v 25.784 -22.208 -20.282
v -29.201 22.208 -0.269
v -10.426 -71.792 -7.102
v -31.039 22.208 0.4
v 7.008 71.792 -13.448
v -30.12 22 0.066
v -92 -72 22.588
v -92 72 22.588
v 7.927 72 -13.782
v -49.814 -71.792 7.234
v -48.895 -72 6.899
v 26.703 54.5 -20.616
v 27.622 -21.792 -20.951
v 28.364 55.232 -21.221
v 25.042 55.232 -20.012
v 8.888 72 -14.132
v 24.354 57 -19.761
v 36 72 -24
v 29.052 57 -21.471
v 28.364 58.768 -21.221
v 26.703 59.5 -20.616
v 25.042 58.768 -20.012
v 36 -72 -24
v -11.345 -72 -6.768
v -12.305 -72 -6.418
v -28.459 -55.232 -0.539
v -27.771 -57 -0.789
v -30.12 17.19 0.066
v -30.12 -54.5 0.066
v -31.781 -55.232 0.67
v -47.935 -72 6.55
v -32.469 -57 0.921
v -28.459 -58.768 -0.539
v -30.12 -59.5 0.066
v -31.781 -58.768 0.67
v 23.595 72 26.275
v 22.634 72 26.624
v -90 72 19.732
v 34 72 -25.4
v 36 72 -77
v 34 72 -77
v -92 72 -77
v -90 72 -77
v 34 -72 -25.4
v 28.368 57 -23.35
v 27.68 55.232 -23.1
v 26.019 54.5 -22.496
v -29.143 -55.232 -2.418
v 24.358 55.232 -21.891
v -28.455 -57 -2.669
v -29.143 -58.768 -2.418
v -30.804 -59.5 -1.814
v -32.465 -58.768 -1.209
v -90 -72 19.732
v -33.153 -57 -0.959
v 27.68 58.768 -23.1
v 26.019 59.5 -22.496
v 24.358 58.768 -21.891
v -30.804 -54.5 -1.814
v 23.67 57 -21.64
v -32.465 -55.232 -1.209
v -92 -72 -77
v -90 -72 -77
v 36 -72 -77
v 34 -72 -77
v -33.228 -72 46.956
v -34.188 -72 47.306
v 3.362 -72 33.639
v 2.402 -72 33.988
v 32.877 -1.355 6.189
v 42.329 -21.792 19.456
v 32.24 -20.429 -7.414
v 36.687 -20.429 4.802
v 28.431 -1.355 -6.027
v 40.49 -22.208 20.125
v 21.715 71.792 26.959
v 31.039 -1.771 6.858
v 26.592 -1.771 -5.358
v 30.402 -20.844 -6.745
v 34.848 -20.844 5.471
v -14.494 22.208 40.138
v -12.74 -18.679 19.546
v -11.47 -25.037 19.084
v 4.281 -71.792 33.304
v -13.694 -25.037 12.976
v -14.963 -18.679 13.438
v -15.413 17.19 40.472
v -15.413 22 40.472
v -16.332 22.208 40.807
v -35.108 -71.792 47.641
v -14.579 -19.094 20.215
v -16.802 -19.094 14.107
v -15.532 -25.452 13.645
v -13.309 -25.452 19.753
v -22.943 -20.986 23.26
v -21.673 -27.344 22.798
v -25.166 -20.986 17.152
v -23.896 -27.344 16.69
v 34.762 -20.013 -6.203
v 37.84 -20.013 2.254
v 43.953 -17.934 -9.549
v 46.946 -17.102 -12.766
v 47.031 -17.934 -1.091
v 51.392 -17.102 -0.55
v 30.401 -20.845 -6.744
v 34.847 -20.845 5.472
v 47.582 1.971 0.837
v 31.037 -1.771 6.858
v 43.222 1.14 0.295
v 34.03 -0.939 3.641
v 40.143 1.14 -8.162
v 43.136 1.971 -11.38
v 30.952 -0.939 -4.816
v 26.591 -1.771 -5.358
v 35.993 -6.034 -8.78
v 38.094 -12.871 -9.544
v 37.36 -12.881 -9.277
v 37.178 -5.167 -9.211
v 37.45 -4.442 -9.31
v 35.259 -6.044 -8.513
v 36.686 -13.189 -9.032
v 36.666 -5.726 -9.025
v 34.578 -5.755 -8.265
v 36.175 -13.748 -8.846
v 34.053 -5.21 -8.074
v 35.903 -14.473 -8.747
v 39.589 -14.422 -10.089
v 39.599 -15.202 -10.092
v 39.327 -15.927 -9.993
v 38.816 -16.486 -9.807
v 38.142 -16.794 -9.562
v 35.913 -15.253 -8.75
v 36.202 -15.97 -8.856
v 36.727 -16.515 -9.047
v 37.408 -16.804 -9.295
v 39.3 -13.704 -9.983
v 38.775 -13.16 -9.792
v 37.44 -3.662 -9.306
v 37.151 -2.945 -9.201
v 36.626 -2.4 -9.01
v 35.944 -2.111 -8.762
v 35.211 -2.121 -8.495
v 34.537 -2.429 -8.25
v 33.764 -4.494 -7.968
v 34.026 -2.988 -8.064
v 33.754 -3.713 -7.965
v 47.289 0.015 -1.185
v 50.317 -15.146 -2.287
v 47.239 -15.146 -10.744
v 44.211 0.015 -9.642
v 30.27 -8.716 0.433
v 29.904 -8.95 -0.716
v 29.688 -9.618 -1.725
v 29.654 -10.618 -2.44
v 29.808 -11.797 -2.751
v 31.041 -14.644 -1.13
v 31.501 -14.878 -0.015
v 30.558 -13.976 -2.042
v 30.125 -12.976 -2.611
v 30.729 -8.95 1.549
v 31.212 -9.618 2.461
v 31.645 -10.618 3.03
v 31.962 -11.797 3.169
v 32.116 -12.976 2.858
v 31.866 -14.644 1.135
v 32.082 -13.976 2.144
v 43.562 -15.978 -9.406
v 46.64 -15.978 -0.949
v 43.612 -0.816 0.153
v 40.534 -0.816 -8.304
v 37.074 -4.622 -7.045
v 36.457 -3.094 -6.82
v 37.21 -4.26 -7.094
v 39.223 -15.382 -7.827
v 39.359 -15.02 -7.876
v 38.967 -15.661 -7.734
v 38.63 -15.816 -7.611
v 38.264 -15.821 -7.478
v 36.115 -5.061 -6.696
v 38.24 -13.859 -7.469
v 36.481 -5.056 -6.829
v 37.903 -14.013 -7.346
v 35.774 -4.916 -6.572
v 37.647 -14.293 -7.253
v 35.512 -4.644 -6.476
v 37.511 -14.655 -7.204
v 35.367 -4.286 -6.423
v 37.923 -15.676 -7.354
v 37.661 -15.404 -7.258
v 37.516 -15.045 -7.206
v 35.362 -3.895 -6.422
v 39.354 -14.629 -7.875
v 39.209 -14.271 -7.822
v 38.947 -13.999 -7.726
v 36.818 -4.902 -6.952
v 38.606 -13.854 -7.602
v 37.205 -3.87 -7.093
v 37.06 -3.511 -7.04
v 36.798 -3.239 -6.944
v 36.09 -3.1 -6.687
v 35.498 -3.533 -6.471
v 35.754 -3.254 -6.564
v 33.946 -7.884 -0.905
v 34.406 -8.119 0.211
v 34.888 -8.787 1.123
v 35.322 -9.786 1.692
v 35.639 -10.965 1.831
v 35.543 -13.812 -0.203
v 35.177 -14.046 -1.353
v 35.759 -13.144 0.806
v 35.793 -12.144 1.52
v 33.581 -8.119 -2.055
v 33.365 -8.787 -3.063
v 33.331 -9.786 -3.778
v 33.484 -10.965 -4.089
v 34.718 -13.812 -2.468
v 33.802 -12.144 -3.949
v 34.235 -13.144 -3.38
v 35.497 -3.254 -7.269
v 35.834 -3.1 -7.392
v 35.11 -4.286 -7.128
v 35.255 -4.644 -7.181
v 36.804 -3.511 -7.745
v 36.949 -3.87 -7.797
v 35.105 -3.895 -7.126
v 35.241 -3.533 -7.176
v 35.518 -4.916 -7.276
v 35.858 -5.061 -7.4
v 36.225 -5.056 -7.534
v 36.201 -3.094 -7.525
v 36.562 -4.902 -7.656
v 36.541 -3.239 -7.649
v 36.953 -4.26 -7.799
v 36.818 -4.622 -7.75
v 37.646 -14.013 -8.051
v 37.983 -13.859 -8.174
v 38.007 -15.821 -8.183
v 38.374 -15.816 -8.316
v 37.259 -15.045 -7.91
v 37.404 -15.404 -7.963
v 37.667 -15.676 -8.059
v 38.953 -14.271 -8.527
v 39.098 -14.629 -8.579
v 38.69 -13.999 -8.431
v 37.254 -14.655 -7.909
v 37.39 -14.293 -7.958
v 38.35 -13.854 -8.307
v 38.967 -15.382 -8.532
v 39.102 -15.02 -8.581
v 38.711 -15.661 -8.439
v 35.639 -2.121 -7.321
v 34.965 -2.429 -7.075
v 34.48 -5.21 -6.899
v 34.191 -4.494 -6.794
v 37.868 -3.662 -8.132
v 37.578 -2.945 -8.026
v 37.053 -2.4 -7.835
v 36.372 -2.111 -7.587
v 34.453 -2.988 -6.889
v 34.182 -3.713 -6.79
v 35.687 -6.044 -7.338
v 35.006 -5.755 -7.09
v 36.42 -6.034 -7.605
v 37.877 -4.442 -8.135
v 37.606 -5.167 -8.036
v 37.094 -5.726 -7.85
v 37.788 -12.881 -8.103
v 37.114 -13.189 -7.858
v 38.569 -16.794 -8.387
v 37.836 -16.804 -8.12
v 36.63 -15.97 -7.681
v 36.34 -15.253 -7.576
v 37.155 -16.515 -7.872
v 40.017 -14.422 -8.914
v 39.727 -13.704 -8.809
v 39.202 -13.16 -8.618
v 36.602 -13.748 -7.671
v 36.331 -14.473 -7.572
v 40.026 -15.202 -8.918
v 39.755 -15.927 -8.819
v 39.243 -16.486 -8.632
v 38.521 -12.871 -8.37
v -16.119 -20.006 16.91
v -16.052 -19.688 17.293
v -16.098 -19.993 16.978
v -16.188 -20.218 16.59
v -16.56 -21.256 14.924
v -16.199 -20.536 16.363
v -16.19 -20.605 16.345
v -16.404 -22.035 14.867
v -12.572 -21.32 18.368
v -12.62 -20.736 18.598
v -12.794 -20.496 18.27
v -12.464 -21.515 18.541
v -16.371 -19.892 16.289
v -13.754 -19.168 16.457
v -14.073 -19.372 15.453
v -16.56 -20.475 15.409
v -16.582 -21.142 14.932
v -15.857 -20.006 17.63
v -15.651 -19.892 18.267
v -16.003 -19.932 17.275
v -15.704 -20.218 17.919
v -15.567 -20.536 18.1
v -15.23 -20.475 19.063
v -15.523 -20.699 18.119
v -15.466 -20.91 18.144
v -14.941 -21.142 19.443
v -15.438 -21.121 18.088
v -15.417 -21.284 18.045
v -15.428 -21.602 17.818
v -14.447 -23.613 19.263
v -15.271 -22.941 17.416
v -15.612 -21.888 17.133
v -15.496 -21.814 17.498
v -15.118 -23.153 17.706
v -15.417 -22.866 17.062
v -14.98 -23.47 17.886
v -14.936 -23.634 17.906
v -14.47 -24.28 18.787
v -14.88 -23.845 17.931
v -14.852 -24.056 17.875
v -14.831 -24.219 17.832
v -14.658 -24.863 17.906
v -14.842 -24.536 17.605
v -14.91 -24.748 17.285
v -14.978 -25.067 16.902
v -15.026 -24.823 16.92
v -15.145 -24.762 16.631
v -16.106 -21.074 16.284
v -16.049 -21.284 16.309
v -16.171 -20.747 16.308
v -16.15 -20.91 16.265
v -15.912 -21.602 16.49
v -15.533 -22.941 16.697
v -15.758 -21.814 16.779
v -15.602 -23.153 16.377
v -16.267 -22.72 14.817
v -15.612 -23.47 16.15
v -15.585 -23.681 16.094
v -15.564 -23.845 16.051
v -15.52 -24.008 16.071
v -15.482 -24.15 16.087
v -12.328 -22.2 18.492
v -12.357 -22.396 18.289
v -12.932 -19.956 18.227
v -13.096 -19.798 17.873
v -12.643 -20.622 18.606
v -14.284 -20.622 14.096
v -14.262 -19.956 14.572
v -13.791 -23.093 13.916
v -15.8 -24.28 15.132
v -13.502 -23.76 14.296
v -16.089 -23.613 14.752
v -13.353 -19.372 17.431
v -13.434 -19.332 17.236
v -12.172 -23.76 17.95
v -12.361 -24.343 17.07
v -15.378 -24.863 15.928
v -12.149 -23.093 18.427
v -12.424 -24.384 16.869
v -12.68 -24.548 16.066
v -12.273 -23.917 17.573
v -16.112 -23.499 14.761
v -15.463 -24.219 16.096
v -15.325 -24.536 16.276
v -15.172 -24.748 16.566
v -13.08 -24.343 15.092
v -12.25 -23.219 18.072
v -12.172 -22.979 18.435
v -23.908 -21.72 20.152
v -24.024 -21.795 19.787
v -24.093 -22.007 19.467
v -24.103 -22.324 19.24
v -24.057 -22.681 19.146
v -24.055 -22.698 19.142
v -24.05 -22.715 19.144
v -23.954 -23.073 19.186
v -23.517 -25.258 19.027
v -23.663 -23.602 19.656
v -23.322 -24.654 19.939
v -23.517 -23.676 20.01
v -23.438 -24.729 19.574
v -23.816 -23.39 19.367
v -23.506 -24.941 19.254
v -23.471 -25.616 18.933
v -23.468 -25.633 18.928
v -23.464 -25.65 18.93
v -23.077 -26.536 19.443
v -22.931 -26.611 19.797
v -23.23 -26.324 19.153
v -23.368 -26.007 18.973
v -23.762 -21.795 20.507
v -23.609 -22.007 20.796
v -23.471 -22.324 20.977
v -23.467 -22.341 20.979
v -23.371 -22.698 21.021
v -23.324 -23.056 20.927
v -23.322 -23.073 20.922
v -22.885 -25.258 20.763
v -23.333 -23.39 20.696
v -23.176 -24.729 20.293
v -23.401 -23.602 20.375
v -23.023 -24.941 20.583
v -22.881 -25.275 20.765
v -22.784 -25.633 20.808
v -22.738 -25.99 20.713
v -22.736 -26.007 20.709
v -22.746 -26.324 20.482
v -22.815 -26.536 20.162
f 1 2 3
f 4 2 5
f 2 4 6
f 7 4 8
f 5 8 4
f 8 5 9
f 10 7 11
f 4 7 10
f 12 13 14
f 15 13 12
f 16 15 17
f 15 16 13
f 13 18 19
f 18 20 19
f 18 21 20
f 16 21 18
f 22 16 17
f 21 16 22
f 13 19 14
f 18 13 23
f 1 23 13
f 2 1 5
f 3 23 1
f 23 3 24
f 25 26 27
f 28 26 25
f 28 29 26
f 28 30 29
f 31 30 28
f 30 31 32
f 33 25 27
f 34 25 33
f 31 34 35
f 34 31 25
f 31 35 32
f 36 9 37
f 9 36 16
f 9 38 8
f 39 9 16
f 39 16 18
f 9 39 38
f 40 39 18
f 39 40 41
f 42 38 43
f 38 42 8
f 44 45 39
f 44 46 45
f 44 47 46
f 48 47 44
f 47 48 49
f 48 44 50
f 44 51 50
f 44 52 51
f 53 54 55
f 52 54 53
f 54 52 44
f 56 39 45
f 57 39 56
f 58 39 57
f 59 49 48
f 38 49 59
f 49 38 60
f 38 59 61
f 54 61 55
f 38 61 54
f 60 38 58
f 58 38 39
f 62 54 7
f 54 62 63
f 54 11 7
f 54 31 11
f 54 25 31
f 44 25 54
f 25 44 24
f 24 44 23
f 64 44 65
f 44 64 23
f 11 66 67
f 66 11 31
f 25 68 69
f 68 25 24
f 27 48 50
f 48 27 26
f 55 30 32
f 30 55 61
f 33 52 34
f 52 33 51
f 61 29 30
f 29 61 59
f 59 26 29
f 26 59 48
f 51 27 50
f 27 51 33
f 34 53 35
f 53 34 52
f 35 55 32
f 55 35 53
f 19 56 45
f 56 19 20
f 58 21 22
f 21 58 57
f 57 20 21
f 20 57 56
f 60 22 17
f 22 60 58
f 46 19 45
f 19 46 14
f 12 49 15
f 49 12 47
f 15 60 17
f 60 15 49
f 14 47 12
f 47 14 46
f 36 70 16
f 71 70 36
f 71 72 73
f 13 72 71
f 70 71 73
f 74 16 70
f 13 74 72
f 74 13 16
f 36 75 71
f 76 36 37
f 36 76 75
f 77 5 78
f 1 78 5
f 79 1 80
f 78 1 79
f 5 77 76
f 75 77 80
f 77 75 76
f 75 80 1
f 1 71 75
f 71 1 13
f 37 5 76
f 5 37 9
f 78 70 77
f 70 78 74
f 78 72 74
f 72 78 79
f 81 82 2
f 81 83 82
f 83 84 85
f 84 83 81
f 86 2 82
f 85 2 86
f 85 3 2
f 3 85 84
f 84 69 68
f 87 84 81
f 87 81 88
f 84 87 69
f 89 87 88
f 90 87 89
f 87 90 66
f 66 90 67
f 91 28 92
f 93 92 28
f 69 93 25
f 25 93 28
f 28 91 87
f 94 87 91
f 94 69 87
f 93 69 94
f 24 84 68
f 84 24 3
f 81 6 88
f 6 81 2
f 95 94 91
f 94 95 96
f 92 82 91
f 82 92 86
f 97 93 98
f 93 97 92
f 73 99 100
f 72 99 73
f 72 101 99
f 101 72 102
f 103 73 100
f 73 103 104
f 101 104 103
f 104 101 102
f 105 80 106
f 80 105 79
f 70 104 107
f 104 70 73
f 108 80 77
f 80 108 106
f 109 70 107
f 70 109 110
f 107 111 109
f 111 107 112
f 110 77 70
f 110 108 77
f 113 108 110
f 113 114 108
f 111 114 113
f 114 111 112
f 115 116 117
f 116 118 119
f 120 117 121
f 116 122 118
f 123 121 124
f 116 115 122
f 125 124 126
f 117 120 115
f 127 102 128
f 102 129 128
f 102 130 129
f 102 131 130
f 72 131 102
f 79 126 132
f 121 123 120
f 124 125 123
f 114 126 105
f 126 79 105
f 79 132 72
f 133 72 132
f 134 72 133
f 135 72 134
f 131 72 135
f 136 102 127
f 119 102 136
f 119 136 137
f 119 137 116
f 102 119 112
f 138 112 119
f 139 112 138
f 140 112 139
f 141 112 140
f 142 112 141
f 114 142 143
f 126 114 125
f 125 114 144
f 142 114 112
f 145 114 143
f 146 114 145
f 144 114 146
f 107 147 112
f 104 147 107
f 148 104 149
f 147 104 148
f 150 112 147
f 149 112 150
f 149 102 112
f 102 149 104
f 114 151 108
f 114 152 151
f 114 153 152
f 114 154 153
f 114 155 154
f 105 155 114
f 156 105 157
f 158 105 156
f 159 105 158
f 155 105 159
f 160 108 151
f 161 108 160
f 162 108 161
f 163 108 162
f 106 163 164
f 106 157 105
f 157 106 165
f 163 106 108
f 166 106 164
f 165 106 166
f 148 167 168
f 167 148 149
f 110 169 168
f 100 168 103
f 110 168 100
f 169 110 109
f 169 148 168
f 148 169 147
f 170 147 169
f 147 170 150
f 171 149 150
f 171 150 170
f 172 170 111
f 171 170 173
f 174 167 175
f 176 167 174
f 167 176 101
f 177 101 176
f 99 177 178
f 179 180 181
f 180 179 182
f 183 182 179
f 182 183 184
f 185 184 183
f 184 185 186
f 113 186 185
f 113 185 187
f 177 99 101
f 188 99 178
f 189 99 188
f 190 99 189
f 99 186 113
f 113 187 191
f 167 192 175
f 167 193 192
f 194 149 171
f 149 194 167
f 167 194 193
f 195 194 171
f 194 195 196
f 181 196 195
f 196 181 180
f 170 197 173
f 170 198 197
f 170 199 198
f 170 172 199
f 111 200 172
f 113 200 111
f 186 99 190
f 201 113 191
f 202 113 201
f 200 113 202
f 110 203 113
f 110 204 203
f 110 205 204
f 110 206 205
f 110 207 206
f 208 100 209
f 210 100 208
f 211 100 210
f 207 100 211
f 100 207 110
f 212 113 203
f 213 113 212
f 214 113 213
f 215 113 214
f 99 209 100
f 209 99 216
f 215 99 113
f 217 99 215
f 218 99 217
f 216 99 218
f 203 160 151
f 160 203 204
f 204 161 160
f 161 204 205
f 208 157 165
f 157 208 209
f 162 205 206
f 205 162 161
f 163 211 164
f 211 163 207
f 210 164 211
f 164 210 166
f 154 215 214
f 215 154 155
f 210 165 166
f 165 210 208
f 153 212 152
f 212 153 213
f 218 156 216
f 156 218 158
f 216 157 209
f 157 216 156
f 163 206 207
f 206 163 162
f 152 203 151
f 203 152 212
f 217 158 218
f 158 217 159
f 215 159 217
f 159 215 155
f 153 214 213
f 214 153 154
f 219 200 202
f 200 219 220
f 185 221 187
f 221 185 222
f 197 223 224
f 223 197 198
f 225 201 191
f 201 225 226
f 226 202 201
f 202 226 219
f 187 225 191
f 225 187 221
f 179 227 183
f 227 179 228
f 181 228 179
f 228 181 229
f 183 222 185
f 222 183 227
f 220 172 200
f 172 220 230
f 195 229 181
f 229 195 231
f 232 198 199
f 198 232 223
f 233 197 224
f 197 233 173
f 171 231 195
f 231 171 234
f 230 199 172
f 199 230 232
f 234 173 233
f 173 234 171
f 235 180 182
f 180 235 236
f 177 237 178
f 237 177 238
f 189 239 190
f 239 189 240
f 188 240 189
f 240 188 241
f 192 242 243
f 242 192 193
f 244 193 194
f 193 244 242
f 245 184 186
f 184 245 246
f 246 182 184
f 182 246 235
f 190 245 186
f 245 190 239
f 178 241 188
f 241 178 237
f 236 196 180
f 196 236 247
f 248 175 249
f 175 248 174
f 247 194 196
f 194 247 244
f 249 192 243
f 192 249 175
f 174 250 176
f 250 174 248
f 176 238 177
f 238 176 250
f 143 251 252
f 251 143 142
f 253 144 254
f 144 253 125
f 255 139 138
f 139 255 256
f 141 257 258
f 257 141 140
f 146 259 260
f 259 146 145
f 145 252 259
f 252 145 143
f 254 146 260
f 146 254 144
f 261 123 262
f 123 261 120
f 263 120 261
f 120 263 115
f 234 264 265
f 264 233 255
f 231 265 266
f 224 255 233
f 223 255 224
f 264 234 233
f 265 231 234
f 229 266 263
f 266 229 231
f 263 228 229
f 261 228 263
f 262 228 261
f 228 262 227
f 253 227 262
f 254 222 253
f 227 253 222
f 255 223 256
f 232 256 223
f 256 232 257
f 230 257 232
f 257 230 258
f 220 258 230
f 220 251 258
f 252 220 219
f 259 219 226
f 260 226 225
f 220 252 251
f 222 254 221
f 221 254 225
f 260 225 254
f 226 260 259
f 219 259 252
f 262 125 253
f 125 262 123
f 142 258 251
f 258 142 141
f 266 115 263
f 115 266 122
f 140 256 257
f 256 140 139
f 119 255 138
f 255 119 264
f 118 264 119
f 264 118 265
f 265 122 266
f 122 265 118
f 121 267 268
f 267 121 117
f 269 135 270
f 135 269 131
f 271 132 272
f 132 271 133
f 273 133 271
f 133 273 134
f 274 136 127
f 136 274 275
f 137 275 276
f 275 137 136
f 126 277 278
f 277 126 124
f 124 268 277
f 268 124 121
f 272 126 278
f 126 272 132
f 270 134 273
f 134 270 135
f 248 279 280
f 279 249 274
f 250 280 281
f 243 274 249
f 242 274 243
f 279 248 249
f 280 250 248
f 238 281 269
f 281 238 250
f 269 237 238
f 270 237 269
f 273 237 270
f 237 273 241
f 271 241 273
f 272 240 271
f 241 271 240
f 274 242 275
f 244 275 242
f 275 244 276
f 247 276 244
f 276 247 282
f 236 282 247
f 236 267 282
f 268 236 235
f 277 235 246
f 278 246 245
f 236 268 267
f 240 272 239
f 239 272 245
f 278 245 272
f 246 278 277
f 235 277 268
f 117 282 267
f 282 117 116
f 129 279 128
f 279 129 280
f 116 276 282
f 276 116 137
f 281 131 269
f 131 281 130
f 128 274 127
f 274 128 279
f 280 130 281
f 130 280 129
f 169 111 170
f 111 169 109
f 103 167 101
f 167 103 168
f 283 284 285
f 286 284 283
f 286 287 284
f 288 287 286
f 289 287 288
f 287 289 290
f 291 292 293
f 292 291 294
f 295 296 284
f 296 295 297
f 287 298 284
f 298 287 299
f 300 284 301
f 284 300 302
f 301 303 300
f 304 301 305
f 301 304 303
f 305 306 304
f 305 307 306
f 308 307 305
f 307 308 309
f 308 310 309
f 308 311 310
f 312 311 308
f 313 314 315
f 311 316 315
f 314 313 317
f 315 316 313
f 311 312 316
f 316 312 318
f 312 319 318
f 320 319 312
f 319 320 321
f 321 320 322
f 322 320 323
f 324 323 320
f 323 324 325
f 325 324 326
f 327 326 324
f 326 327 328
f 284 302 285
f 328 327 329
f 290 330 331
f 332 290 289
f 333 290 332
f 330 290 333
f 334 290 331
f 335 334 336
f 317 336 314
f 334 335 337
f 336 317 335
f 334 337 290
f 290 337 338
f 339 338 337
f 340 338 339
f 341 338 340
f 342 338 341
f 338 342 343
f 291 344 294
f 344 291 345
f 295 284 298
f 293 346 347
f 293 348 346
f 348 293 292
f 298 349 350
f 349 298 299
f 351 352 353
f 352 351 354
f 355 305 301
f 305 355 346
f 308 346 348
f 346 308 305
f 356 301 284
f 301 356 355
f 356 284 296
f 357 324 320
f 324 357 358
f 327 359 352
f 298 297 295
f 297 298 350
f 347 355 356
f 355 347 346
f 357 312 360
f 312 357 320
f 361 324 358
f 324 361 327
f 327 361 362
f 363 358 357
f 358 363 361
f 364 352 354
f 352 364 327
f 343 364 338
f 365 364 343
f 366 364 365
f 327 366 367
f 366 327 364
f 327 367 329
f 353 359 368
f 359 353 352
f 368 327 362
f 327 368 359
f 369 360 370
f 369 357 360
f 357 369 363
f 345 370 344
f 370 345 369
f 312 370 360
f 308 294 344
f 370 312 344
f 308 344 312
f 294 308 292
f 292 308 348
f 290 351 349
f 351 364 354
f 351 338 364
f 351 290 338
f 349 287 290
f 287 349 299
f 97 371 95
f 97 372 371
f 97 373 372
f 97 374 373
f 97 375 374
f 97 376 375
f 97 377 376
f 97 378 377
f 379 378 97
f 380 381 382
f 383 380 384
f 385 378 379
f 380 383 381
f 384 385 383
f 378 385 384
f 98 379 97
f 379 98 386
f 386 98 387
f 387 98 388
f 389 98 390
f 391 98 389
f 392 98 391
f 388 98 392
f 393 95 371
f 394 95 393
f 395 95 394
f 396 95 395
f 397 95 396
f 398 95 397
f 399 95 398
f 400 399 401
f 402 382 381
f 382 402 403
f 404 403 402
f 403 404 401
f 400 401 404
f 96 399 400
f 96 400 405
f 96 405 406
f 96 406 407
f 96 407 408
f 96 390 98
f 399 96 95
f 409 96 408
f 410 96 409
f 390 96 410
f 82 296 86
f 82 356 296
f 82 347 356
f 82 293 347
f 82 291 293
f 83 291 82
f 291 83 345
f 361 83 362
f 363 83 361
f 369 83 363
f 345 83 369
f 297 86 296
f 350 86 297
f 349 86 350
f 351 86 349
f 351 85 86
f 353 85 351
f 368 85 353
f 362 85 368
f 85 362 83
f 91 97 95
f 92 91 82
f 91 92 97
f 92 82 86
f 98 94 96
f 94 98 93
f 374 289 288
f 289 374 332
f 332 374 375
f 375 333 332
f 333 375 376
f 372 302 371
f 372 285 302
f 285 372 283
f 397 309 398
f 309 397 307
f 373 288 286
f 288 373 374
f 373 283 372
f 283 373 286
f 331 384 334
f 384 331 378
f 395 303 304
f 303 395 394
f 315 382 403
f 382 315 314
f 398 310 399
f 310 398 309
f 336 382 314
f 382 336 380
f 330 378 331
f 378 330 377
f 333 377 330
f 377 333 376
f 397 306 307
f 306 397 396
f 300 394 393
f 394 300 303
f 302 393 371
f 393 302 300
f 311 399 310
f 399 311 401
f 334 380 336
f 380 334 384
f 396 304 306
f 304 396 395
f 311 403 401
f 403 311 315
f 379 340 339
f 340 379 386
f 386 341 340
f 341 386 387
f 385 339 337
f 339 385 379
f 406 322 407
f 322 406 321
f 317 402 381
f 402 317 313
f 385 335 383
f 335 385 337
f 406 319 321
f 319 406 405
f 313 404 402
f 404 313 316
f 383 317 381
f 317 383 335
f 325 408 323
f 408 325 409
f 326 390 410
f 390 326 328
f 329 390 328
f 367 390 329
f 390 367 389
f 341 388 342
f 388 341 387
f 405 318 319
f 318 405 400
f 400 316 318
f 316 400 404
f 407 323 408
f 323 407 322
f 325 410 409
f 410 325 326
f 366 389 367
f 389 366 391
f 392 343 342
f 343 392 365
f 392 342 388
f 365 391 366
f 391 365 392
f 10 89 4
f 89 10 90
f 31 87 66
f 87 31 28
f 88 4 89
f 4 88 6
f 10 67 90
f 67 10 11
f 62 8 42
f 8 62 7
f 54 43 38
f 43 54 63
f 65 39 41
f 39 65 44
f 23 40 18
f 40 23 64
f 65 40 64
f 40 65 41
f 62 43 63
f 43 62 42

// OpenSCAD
// file: GehaeuseLaser.scad
module laserCasing(){
  
  fn = 16;
  cubeInnerLength=14;
  cubeInnerWidth=15.5;
  cubeInnerHeight=9;
  wallthickness=2;
  laserBarrelRadius=6;
  platinenBreite=15;
  innerCubeDelta=2;
  screwTotalLength=11.2;
  screwHeadHeight=1.25;
  screwHeadDiameter=4;
  screwXOffset=2;
  screwYOffset=4.9;
  nutHeight=1.5;
  
  difference(){
    cube([cubeInnerWidth + 2*wallthickness, cubeInnerLength + 2*wallthickness, cubeInnerHeight + 2*wallthickness], center=true);
    translate([0, -innerCubeDelta, 0])cube([cubeInnerWidth, cubeInnerLength, cubeInnerHeight], center=true);
    translate([-0.5, cubeInnerLength/2, 1-0.3-0.5])rotate([90, 0, 0])cylinder($fn = fn, d=laserBarrelRadius + 0.3, h=2*innerCubeDelta, center=true);
    
    //Löcher Schrauben
    translate([platinenBreite/2-screwXOffset, cubeInnerLength/2-screwYOffset-innerCubeDelta, -wallthickness])cylinder($fn = fn, h=cubeInnerHeight + wallthickness, d=2, center=true);
    translate([-(platinenBreite/2-screwXOffset), cubeInnerLength/2-screwYOffset-innerCubeDelta, -wallthickness])cylinder($fn = fn, h=cubeInnerHeight + wallthickness, d=2, center=true);
    
    //Löcher Schraubköpfe
    translate([platinenBreite/2-screwXOffset, cubeInnerLength/2-screwYOffset-innerCubeDelta, -(cubeInnerHeight + 2*wallthickness-screwHeadHeight)/2])cylinder($fn = fn, h=screwHeadHeight, d=screwHeadDiameter, center=true);
    translate([-(platinenBreite/2-screwXOffset), cubeInnerLength/2-screwYOffset-innerCubeDelta, -(cubeInnerHeight + 2*wallthickness-screwHeadHeight)/2])cylinder($fn = fn, h=screwHeadHeight, d=screwHeadDiameter, center=true);
    
    //Seitenlöcher für Mutternbefestigung
    translate([(cubeInnerWidth+wallthickness)/2,0,0])cube([wallthickness, 10, cubeInnerHeight], center=true);
    translate([-(cubeInnerWidth+wallthickness)/2,0,0])cube([wallthickness, 10, cubeInnerHeight], center=true);
  }
}
// file: photoresistorCasing2.scad
module photoresistorCasing(){
  fn=16;
  baseCubeHeight=11.1;
  photoresistorDiameter=5.5;
  photoresistorHeight=4.8;
  photoresistorDepth=2.5;
  difference(){
    //Basiscubus
    translate([0, 0, 0])cube([baseCubeHeight, photoresistorDiameter+1, photoresistorDiameter+1], center = true);
    
    //Ausschnitt Photoresitor
    translate([ (baseCubeHeight-photoresistorDepth)/2, 0, 0])difference(){
      rotate([0, 90, 0])cylinder($fn = fn, d=photoresistorDiameter, h=photoresistorDepth, center=true);
      translate([0, 0, +3/2 + photoresistorHeight/2])cube([3, 3, 3], center = true);
      translate([0, 0, -3/2 - photoresistorHeight/2])cube([3, 3, 3], center = true);
    }
    
    //Löcher Beine Lichtsensor. Höhe extra übertrieben, ging nicht anders.
    translate([-(baseCubeHeight-20)/2,  (4-1)/2, 0])rotate([0, 90, 0])cylinder($fn = fn, d=2, h=22, center=true);
    translate([-(baseCubeHeight-20)/2, -(4-1)/2, 0])rotate([0, 90, 0])cylinder($fn = fn, d=2, h=22, center=true);
  }
  
  //Test Stab zum Ausrichten
//  translate([ (baseCubeHeight-photoresistorDepth)/2, 0, 0]){
//  rotate([0, 90, 0])cylinder($fn = fn, d=photoresistorDiameter, h=150, center=true);
//  }
}
// main file
include <photoresistorCasing2.scad>
include <GehaeuseLaser.scad>
ballDiameter=44;
ballTolerance=6;
ballHoleDistanceFromLeftInnerBoxSide=2;
printWallThickness=2;
boxprintWallThickness=3;
boxXSize=190;
boxYSize=150;
boxHeight=160;
slopeAngle=20;
firstWallAngle=-12;
secondWallAngle=12;
laserCasingLaserBarrelMidpointX=-1;
laserCasingLaserBarrelMidpointZ=0.2;
laserCasingLength=22.19;
photoresistorCasingLength=11.1;
photoresistorCasingOffset=3;
cableHoleDiameter=5;

boxInsideXSize=boxXSize-2*boxprintWallThickness;
boxInsideYSize=boxYSize-2*boxprintWallThickness;
boxInsideHeight=boxHeight-2*boxprintWallThickness;

drawerHeight=ballDiameter+ballTolerance+boxprintWallThickness;
drawerLength=ballDiameter+ballTolerance+2*boxprintWallThickness;

slopeSurfaceDistanceToFloor=drawerHeight;
slopeSurfaceXLength=boxInsideXSize-drawerLength;
slopeSurfaceHeight=slopeSurfaceXLength*tan(slopeAngle);
slopeSurfaceLength=slopeSurfaceXLength/cos(slopeAngle);
slopeSurfaceDistanceToCeiling=boxHeight-slopeSurfaceHeight-drawerHeight;

holeDiameter=2*printWallThickness+ballDiameter+ballTolerance;
holeDistanceRightEdgeToLeftEdgeOfInnerBox=ballHoleDistanceFromLeftInnerBoxSide+(holeDiameter);
holeDistanceRightEdgeToSlopeSurface=slopeSurfaceDistanceToCeiling+holeDistanceRightEdgeToLeftEdgeOfInnerBox*tan(slopeAngle);

echo("Distance Hole Edge to Slope Surface: ", holeDistanceRightEdgeToSlopeSurface);
if (holeDistanceRightEdgeToSlopeSurface<ballDiameter+ballTolerance) echo("<font color='red'>HOLE FOR BALL IN BOX TOO CLOSE TO EDGE!</font>");
if (slopeSurfaceDistanceToCeiling <= 0) echo("<font color='red'>CRITICAL VARIABLE ZERO OR NEGATIVE! THIS SHOULD NOT HAPPEN!</font>");
  
module slope(){
  
  //Variables
  pointBallHits=(-(boxInsideXSize/2)+ballHoleDistanceFromLeftInnerBoxSide+(holeDiameter/2)+drawerLength/2)/cos(slopeAngle);
  
  //Variables First Wall
  firstWallLength=(boxInsideYSize-(ballDiameter+ballTolerance))/cos(firstWallAngle);
  firstWallXDistance=firstWallLength*sin(abs(firstWallAngle));
  firstWallXOffSet=pointBallHits+(ballDiameter+ballTolerance)/2;
  firstWallYOffSet=-boxInsideYSize/2+(boxInsideYSize-(ballDiameter+ballTolerance))/2;
  
  //Variables Second Wall
  secondWallLength=(boxInsideYSize-(ballDiameter+ballTolerance))/cos(secondWallAngle);
  secondWallXDistance=secondWallLength*sin(secondWallAngle);
  secondWallXOffSet=firstWallXOffSet+(ballDiameter+ballTolerance)/cos(abs(secondWallAngle))+(firstWallXDistance+secondWallXDistance)/2-(-firstWallYOffSet*2*tan(secondWallAngle));
  secondWallYOffSet=-firstWallYOffSet;

  
  //Variables Third Wall
  thirdWallAngle=secondWallAngle;
  thirdWallLength=secondWallLength;
  thirdWallXOffSet=firstWallXOffSet+firstWallLength*sin(abs(firstWallAngle))/2+thirdWallLength*sin(abs(thirdWallAngle))/2;
  thirdWallYOffSet=firstWallYOffSet;
  
  //Variables Photoresistor Casing
  photoresistorCasingXOffSet=thirdWallXOffSet+(-photoresistorCasingLength/2)*cos(abs(thirdWallAngle))+(printWallThickness/2)*cos(abs(thirdWallAngle))-photoresistorCasingOffset*sin(abs(thirdWallAngle));
  photoresistorCasingYOffSet=thirdWallYOffSet+(-photoresistorCasingLength/2)*sin(thirdWallAngle)+(printWallThickness/2)*sin(thirdWallAngle)+photoresistorCasingOffset*cos(thirdWallAngle);
  
  
  //Variables Laser Casing
  distanceSecondToThirdWallXCoordinate=secondWallXDistance-thirdWallXOffSet;
  distanceSecondToThirdWallYCoordinate=secondWallYOffSet-thirdWallYOffSet;
  laserCasingXOffSet=photoresistorCasingXOffSet+distanceSecondToThirdWallYCoordinate+(laserCasingLength/2)*cos(secondWallAngle)-laserCasingLaserBarrelMidpointX*sin(secondWallAngle);
  laserCasingYOffSet=photoresistorCasingYOffSet+distanceSecondToThirdWallXCoordinate+(laserCasingLength/2)*sin(secondWallAngle)+laserCasingLaserBarrelMidpointX*cos(secondWallAngle);
  
  //Variables cable Hole Photo Resistor
  cableHolePhotoresistorXOffset=(firstWallXOffSet+thirdWallXOffSet)/2;
  cableHolePhotoresistorYOffset=-(boxInsideYSize/2-15);
  
  //Variables Hole Laser Casing
  cableHoleLaserXOffset=secondWallXOffSet+(secondWallLength*sin(abs(secondWallAngle))/2);
  cableHoleLaserYOffset=(boxInsideYSize/2-15);
  
  difference(){
    //Slope
    cube([slopeSurfaceLength, boxInsideYSize, printWallThickness], center=true);
    
    //Cable Hole Photo Resistor
    translate([cableHolePhotoresistorXOffset, cableHolePhotoresistorYOffset, 0])cylinder(d=cableHoleDiameter, h=printWallThickness, center=true);
    
    //Cable Hole Laser
    translate([cableHoleLaserXOffset, cableHoleLaserYOffset, 0])cylinder(d=cableHoleDiameter, h=printWallThickness, center=true);
  }
    
  //First Wall
  translate([firstWallXOffSet, firstWallYOffSet, ballDiameter/2])rotate([0, 0, firstWallAngle])cube([printWallThickness, firstWallLength, ballDiameter], center=true);
  
  //Second Wall
  difference(){
    translate([secondWallXOffSet, secondWallYOffSet, ballDiameter/2])rotate([0, 0, secondWallAngle])cube([printWallThickness, secondWallLength, ballDiameter], center=true);
    translate([laserCasingXOffSet, laserCasingYOffSet, ballDiameter/2 - laserCasingLaserBarrelMidpointZ])rotate([0,0,secondWallAngle+90])cube([19.5, 35, 13], center=true);
  }
  
  //ThirdWall
  difference(){
    translate([thirdWallXOffSet, thirdWallYOffSet, ballDiameter/2])rotate([0, 0, thirdWallAngle])cube([printWallThickness, thirdWallLength, ballDiameter], center=true);

  //Hole for photoresistor casing. Length + 1 because cutoff didn't work right.
    translate([photoresistorCasingXOffSet, photoresistorCasingYOffSet, ballDiameter/2])rotate([0,0,thirdWallAngle])cube([photoresistorCasingLength+1, 5.5+1, 5.5+1], center = true);
  }
  
  //Laser casing
  translate([laserCasingXOffSet, laserCasingYOffSet, ballDiameter/2 - laserCasingLaserBarrelMidpointZ])rotate([0,0,secondWallAngle+90])laserCasing();
  
  //photoresistor Casing
  translate([photoresistorCasingXOffSet, photoresistorCasingYOffSet, ballDiameter/2])rotate([0,0,thirdWallAngle])photoresistorCasing();
  
//  //Test Ball 1
//  translate([firstWallXOffSet+firstWallLength*sin(abs(firstWallAngle))/2, boxInsideYSize/2-(ballDiameter+ballTolerance)/2, (ballDiameter+ballTolerance)/2 + printWallThickness/2])sphere(d=(ballDiameter+ballTolerance), center=true);
//  
//  //Test Ball 2
//  translate([pointBallHits, 0, (ballDiameter+ballTolerance)/2 + printWallThickness/2])sphere(d=(ballDiameter+ballTolerance), center=true);
//  
//  //Test Ball 3
//  translate([28, 0, (ballDiameter+ballTolerance)/2 + printWallThickness/2])sphere(d=(ballDiameter+ballTolerance), center=true);
  
  
}

module drawerWall(){
  cube([printWallThickness, boxInsideYSize, drawerHeight], center=true);
}

module leftWall(){
  cube([printWallThickness, boxInsideYSize, drawerHeight+slopeSurfaceHeight], center=true);
}
//Start of Rendering

difference(){
  union(){
    //Slope
    slopeZThickness=((printWallThickness/2)*cos(slopeAngle));
    slopeXDelta=(printWallThickness/2)*sin(slopeAngle); //How much to move slope to left due to thickness of print
    
    translate([boxInsideXSize/2-drawerLength-slopeXDelta-slopeSurfaceXLength/2, 0, -boxInsideHeight/2+drawerHeight+slopeSurfaceHeight/2-slopeZThickness])rotate([0, slopeAngle, 0])slope();
    
    //Left Wall
    
    translate([-boxInsideXSize/2+printWallThickness/2, 0, -boxInsideHeight/2+(drawerHeight+slopeSurfaceHeight)/2-slopeZThickness])leftWall();
    
    //Drawer Wall
    translate([boxInsideXSize/2-drawerLength-printWallThickness/2, 0, -boxInsideHeight/2+drawerHeight/2])drawerWall();
    
  }
    
  
  //Box as cutoff  
  difference(){
    cube([boxXSize, boxYSize, boxHeight], center=true);
    cube([boxInsideXSize, boxInsideYSize, boxInsideHeight], center=true);
  }
}
